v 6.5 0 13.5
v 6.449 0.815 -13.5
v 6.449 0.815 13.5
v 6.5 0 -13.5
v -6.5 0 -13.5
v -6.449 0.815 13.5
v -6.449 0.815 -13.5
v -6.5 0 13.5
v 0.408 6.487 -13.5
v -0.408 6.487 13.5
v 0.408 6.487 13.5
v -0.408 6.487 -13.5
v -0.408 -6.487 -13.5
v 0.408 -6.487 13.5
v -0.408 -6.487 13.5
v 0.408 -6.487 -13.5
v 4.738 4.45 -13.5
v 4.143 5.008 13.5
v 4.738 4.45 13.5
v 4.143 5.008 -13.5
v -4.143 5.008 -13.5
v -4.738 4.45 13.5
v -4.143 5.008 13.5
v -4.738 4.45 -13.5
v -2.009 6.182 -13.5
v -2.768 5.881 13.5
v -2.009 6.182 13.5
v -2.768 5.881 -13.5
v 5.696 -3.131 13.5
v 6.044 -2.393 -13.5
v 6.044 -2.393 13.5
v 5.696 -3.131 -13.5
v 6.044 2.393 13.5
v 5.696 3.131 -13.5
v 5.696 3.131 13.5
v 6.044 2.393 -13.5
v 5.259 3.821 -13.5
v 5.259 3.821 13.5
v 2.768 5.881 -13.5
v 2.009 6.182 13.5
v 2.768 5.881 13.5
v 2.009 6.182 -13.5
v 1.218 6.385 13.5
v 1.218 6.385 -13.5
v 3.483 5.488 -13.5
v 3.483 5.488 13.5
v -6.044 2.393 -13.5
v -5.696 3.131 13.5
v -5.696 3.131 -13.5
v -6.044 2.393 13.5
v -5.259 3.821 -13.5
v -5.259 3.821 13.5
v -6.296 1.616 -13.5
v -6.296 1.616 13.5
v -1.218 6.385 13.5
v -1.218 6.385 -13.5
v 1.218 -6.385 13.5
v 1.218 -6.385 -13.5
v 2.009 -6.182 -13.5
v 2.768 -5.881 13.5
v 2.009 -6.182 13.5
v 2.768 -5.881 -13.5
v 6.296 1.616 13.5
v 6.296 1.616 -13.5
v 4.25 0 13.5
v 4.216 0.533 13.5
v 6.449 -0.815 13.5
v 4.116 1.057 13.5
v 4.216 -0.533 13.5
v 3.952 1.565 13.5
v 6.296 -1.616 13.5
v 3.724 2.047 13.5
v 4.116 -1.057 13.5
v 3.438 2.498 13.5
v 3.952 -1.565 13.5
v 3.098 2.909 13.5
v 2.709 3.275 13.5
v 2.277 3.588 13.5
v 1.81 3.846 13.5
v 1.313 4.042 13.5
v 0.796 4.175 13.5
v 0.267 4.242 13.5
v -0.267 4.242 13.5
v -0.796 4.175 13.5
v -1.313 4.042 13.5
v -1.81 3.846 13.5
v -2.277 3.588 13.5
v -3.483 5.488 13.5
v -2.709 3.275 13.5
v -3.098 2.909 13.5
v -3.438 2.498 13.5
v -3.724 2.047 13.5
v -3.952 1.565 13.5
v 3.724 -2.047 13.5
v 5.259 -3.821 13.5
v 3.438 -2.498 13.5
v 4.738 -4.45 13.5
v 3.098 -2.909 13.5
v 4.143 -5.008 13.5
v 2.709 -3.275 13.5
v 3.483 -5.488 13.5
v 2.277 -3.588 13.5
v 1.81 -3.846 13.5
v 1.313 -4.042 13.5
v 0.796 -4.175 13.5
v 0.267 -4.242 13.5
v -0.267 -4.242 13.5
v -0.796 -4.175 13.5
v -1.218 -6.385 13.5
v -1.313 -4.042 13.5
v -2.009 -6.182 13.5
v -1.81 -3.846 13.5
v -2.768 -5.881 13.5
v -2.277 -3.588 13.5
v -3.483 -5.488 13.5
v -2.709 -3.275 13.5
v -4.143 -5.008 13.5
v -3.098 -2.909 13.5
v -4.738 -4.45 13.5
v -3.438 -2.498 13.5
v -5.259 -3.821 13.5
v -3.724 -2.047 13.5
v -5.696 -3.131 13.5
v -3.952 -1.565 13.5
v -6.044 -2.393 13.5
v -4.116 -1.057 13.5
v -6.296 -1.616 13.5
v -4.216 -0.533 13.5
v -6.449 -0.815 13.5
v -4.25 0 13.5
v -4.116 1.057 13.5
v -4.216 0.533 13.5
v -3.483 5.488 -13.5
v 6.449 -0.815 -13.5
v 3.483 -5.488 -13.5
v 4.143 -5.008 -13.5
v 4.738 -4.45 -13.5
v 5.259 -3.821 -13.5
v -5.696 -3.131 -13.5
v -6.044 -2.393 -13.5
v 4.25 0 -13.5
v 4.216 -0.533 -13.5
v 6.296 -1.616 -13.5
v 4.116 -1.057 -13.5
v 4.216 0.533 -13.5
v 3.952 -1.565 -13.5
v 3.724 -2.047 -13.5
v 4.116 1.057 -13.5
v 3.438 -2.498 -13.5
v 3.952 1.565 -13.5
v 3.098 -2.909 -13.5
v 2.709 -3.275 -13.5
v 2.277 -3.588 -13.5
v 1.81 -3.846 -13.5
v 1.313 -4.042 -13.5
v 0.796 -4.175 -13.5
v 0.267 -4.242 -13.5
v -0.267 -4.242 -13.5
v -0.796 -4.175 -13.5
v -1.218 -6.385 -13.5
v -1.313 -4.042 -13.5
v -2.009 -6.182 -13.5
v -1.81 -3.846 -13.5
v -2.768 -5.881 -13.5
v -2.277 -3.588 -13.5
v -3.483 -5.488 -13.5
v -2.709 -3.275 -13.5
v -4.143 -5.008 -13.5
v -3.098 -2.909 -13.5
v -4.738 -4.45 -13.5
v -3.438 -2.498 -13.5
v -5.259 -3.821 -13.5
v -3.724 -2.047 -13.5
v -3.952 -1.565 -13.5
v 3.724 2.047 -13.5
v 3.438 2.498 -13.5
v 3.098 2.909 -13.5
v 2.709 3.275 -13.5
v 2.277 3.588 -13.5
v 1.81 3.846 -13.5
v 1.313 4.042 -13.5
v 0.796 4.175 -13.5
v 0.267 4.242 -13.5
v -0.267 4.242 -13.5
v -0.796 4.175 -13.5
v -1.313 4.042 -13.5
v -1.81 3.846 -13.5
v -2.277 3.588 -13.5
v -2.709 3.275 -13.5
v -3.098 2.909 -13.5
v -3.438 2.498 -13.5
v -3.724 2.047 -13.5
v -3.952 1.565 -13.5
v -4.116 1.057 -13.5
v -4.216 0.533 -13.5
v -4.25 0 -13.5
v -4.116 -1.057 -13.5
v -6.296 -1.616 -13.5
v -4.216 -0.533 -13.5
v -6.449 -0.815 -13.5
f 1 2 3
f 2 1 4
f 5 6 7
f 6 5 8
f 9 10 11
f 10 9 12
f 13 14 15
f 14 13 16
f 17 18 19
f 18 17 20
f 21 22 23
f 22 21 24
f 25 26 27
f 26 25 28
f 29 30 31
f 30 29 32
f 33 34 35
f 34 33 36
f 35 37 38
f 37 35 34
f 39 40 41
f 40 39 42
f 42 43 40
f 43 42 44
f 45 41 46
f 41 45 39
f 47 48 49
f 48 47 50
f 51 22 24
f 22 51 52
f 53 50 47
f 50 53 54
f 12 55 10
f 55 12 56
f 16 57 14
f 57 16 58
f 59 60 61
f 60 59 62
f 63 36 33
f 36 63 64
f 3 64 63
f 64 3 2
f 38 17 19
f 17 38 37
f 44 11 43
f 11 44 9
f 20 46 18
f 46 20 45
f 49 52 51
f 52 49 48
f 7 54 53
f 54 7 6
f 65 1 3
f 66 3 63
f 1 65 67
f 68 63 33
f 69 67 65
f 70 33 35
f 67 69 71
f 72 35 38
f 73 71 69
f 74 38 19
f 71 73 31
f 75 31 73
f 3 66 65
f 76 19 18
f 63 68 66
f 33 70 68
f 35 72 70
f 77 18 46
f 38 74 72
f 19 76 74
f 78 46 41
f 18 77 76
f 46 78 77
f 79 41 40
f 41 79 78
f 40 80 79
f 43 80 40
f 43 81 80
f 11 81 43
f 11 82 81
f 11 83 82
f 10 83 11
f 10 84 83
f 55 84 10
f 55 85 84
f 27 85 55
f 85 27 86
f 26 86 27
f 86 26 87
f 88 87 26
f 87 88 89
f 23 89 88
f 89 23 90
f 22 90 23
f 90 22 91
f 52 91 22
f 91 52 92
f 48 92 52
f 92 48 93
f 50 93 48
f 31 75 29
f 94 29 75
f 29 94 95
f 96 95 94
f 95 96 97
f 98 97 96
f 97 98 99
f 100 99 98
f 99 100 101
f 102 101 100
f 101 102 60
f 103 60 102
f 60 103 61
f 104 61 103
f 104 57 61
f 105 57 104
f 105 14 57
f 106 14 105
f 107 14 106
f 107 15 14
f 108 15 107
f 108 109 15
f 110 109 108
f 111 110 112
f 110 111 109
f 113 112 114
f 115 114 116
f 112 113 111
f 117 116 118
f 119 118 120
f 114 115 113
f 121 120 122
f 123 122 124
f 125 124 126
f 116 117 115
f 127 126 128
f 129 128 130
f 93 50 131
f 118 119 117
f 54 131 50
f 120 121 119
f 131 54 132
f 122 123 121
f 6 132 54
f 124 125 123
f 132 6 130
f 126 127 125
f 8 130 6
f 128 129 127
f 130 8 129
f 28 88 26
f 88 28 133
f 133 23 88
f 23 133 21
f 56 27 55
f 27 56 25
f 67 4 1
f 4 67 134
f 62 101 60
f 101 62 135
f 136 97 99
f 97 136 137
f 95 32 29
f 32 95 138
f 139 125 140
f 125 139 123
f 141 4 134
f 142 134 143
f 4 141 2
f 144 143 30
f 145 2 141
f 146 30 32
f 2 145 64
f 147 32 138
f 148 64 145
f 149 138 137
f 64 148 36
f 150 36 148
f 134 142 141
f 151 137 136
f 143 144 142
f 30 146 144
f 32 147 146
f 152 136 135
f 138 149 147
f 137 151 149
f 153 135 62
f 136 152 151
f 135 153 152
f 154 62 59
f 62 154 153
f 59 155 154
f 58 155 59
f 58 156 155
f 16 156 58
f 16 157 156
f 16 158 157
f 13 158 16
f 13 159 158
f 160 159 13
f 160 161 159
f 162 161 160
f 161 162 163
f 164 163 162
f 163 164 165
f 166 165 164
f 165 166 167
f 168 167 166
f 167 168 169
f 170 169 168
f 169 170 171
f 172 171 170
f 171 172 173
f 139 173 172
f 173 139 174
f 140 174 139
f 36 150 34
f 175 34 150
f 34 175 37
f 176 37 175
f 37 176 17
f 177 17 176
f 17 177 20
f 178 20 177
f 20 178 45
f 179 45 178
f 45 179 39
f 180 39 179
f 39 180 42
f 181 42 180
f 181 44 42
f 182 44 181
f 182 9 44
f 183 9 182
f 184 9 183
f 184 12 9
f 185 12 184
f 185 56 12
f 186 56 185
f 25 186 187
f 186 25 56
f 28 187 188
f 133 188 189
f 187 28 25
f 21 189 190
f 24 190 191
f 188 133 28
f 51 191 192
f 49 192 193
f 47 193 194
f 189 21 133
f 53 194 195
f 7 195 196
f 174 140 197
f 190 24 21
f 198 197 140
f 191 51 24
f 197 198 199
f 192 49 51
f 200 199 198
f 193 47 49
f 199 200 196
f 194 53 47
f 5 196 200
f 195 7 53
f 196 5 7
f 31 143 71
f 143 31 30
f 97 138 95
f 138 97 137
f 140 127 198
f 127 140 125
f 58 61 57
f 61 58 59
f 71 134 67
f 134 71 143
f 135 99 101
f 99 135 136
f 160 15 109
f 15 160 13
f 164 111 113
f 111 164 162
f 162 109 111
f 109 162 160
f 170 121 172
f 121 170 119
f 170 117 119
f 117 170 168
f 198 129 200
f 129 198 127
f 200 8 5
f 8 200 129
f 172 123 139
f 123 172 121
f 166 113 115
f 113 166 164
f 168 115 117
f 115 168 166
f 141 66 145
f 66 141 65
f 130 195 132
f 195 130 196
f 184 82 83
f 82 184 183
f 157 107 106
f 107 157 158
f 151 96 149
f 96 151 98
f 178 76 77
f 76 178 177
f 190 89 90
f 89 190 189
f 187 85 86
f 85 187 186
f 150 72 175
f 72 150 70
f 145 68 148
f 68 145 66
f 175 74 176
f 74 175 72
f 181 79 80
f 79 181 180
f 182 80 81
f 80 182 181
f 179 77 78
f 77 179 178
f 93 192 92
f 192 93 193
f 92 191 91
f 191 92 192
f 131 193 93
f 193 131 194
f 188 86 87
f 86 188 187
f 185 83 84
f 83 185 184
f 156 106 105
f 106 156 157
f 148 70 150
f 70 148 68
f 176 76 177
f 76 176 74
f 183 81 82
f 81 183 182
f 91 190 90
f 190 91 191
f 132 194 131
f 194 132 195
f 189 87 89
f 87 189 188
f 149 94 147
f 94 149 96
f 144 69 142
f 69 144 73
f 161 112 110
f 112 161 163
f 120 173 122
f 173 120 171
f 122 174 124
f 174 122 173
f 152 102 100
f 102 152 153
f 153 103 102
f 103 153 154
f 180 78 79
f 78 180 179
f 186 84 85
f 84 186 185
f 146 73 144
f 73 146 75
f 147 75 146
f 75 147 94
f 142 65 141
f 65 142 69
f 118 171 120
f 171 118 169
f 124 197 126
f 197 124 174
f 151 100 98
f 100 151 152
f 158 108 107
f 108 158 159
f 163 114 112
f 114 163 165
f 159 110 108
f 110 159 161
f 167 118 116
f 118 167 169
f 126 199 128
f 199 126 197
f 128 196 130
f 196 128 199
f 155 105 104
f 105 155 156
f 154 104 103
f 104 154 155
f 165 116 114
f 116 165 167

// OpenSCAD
$fn = 50;


difference() {
	union() {
		translate(v = [0, 0, -13.5000000000]) {
			cylinder(h = 27, r = 6.5000000000);
		}
	}
	union() {
		translate(v = [0, 0, -100.0000000000]) {
			cylinder(h = 200, r = 4.2500000000);
		}
	}
}
